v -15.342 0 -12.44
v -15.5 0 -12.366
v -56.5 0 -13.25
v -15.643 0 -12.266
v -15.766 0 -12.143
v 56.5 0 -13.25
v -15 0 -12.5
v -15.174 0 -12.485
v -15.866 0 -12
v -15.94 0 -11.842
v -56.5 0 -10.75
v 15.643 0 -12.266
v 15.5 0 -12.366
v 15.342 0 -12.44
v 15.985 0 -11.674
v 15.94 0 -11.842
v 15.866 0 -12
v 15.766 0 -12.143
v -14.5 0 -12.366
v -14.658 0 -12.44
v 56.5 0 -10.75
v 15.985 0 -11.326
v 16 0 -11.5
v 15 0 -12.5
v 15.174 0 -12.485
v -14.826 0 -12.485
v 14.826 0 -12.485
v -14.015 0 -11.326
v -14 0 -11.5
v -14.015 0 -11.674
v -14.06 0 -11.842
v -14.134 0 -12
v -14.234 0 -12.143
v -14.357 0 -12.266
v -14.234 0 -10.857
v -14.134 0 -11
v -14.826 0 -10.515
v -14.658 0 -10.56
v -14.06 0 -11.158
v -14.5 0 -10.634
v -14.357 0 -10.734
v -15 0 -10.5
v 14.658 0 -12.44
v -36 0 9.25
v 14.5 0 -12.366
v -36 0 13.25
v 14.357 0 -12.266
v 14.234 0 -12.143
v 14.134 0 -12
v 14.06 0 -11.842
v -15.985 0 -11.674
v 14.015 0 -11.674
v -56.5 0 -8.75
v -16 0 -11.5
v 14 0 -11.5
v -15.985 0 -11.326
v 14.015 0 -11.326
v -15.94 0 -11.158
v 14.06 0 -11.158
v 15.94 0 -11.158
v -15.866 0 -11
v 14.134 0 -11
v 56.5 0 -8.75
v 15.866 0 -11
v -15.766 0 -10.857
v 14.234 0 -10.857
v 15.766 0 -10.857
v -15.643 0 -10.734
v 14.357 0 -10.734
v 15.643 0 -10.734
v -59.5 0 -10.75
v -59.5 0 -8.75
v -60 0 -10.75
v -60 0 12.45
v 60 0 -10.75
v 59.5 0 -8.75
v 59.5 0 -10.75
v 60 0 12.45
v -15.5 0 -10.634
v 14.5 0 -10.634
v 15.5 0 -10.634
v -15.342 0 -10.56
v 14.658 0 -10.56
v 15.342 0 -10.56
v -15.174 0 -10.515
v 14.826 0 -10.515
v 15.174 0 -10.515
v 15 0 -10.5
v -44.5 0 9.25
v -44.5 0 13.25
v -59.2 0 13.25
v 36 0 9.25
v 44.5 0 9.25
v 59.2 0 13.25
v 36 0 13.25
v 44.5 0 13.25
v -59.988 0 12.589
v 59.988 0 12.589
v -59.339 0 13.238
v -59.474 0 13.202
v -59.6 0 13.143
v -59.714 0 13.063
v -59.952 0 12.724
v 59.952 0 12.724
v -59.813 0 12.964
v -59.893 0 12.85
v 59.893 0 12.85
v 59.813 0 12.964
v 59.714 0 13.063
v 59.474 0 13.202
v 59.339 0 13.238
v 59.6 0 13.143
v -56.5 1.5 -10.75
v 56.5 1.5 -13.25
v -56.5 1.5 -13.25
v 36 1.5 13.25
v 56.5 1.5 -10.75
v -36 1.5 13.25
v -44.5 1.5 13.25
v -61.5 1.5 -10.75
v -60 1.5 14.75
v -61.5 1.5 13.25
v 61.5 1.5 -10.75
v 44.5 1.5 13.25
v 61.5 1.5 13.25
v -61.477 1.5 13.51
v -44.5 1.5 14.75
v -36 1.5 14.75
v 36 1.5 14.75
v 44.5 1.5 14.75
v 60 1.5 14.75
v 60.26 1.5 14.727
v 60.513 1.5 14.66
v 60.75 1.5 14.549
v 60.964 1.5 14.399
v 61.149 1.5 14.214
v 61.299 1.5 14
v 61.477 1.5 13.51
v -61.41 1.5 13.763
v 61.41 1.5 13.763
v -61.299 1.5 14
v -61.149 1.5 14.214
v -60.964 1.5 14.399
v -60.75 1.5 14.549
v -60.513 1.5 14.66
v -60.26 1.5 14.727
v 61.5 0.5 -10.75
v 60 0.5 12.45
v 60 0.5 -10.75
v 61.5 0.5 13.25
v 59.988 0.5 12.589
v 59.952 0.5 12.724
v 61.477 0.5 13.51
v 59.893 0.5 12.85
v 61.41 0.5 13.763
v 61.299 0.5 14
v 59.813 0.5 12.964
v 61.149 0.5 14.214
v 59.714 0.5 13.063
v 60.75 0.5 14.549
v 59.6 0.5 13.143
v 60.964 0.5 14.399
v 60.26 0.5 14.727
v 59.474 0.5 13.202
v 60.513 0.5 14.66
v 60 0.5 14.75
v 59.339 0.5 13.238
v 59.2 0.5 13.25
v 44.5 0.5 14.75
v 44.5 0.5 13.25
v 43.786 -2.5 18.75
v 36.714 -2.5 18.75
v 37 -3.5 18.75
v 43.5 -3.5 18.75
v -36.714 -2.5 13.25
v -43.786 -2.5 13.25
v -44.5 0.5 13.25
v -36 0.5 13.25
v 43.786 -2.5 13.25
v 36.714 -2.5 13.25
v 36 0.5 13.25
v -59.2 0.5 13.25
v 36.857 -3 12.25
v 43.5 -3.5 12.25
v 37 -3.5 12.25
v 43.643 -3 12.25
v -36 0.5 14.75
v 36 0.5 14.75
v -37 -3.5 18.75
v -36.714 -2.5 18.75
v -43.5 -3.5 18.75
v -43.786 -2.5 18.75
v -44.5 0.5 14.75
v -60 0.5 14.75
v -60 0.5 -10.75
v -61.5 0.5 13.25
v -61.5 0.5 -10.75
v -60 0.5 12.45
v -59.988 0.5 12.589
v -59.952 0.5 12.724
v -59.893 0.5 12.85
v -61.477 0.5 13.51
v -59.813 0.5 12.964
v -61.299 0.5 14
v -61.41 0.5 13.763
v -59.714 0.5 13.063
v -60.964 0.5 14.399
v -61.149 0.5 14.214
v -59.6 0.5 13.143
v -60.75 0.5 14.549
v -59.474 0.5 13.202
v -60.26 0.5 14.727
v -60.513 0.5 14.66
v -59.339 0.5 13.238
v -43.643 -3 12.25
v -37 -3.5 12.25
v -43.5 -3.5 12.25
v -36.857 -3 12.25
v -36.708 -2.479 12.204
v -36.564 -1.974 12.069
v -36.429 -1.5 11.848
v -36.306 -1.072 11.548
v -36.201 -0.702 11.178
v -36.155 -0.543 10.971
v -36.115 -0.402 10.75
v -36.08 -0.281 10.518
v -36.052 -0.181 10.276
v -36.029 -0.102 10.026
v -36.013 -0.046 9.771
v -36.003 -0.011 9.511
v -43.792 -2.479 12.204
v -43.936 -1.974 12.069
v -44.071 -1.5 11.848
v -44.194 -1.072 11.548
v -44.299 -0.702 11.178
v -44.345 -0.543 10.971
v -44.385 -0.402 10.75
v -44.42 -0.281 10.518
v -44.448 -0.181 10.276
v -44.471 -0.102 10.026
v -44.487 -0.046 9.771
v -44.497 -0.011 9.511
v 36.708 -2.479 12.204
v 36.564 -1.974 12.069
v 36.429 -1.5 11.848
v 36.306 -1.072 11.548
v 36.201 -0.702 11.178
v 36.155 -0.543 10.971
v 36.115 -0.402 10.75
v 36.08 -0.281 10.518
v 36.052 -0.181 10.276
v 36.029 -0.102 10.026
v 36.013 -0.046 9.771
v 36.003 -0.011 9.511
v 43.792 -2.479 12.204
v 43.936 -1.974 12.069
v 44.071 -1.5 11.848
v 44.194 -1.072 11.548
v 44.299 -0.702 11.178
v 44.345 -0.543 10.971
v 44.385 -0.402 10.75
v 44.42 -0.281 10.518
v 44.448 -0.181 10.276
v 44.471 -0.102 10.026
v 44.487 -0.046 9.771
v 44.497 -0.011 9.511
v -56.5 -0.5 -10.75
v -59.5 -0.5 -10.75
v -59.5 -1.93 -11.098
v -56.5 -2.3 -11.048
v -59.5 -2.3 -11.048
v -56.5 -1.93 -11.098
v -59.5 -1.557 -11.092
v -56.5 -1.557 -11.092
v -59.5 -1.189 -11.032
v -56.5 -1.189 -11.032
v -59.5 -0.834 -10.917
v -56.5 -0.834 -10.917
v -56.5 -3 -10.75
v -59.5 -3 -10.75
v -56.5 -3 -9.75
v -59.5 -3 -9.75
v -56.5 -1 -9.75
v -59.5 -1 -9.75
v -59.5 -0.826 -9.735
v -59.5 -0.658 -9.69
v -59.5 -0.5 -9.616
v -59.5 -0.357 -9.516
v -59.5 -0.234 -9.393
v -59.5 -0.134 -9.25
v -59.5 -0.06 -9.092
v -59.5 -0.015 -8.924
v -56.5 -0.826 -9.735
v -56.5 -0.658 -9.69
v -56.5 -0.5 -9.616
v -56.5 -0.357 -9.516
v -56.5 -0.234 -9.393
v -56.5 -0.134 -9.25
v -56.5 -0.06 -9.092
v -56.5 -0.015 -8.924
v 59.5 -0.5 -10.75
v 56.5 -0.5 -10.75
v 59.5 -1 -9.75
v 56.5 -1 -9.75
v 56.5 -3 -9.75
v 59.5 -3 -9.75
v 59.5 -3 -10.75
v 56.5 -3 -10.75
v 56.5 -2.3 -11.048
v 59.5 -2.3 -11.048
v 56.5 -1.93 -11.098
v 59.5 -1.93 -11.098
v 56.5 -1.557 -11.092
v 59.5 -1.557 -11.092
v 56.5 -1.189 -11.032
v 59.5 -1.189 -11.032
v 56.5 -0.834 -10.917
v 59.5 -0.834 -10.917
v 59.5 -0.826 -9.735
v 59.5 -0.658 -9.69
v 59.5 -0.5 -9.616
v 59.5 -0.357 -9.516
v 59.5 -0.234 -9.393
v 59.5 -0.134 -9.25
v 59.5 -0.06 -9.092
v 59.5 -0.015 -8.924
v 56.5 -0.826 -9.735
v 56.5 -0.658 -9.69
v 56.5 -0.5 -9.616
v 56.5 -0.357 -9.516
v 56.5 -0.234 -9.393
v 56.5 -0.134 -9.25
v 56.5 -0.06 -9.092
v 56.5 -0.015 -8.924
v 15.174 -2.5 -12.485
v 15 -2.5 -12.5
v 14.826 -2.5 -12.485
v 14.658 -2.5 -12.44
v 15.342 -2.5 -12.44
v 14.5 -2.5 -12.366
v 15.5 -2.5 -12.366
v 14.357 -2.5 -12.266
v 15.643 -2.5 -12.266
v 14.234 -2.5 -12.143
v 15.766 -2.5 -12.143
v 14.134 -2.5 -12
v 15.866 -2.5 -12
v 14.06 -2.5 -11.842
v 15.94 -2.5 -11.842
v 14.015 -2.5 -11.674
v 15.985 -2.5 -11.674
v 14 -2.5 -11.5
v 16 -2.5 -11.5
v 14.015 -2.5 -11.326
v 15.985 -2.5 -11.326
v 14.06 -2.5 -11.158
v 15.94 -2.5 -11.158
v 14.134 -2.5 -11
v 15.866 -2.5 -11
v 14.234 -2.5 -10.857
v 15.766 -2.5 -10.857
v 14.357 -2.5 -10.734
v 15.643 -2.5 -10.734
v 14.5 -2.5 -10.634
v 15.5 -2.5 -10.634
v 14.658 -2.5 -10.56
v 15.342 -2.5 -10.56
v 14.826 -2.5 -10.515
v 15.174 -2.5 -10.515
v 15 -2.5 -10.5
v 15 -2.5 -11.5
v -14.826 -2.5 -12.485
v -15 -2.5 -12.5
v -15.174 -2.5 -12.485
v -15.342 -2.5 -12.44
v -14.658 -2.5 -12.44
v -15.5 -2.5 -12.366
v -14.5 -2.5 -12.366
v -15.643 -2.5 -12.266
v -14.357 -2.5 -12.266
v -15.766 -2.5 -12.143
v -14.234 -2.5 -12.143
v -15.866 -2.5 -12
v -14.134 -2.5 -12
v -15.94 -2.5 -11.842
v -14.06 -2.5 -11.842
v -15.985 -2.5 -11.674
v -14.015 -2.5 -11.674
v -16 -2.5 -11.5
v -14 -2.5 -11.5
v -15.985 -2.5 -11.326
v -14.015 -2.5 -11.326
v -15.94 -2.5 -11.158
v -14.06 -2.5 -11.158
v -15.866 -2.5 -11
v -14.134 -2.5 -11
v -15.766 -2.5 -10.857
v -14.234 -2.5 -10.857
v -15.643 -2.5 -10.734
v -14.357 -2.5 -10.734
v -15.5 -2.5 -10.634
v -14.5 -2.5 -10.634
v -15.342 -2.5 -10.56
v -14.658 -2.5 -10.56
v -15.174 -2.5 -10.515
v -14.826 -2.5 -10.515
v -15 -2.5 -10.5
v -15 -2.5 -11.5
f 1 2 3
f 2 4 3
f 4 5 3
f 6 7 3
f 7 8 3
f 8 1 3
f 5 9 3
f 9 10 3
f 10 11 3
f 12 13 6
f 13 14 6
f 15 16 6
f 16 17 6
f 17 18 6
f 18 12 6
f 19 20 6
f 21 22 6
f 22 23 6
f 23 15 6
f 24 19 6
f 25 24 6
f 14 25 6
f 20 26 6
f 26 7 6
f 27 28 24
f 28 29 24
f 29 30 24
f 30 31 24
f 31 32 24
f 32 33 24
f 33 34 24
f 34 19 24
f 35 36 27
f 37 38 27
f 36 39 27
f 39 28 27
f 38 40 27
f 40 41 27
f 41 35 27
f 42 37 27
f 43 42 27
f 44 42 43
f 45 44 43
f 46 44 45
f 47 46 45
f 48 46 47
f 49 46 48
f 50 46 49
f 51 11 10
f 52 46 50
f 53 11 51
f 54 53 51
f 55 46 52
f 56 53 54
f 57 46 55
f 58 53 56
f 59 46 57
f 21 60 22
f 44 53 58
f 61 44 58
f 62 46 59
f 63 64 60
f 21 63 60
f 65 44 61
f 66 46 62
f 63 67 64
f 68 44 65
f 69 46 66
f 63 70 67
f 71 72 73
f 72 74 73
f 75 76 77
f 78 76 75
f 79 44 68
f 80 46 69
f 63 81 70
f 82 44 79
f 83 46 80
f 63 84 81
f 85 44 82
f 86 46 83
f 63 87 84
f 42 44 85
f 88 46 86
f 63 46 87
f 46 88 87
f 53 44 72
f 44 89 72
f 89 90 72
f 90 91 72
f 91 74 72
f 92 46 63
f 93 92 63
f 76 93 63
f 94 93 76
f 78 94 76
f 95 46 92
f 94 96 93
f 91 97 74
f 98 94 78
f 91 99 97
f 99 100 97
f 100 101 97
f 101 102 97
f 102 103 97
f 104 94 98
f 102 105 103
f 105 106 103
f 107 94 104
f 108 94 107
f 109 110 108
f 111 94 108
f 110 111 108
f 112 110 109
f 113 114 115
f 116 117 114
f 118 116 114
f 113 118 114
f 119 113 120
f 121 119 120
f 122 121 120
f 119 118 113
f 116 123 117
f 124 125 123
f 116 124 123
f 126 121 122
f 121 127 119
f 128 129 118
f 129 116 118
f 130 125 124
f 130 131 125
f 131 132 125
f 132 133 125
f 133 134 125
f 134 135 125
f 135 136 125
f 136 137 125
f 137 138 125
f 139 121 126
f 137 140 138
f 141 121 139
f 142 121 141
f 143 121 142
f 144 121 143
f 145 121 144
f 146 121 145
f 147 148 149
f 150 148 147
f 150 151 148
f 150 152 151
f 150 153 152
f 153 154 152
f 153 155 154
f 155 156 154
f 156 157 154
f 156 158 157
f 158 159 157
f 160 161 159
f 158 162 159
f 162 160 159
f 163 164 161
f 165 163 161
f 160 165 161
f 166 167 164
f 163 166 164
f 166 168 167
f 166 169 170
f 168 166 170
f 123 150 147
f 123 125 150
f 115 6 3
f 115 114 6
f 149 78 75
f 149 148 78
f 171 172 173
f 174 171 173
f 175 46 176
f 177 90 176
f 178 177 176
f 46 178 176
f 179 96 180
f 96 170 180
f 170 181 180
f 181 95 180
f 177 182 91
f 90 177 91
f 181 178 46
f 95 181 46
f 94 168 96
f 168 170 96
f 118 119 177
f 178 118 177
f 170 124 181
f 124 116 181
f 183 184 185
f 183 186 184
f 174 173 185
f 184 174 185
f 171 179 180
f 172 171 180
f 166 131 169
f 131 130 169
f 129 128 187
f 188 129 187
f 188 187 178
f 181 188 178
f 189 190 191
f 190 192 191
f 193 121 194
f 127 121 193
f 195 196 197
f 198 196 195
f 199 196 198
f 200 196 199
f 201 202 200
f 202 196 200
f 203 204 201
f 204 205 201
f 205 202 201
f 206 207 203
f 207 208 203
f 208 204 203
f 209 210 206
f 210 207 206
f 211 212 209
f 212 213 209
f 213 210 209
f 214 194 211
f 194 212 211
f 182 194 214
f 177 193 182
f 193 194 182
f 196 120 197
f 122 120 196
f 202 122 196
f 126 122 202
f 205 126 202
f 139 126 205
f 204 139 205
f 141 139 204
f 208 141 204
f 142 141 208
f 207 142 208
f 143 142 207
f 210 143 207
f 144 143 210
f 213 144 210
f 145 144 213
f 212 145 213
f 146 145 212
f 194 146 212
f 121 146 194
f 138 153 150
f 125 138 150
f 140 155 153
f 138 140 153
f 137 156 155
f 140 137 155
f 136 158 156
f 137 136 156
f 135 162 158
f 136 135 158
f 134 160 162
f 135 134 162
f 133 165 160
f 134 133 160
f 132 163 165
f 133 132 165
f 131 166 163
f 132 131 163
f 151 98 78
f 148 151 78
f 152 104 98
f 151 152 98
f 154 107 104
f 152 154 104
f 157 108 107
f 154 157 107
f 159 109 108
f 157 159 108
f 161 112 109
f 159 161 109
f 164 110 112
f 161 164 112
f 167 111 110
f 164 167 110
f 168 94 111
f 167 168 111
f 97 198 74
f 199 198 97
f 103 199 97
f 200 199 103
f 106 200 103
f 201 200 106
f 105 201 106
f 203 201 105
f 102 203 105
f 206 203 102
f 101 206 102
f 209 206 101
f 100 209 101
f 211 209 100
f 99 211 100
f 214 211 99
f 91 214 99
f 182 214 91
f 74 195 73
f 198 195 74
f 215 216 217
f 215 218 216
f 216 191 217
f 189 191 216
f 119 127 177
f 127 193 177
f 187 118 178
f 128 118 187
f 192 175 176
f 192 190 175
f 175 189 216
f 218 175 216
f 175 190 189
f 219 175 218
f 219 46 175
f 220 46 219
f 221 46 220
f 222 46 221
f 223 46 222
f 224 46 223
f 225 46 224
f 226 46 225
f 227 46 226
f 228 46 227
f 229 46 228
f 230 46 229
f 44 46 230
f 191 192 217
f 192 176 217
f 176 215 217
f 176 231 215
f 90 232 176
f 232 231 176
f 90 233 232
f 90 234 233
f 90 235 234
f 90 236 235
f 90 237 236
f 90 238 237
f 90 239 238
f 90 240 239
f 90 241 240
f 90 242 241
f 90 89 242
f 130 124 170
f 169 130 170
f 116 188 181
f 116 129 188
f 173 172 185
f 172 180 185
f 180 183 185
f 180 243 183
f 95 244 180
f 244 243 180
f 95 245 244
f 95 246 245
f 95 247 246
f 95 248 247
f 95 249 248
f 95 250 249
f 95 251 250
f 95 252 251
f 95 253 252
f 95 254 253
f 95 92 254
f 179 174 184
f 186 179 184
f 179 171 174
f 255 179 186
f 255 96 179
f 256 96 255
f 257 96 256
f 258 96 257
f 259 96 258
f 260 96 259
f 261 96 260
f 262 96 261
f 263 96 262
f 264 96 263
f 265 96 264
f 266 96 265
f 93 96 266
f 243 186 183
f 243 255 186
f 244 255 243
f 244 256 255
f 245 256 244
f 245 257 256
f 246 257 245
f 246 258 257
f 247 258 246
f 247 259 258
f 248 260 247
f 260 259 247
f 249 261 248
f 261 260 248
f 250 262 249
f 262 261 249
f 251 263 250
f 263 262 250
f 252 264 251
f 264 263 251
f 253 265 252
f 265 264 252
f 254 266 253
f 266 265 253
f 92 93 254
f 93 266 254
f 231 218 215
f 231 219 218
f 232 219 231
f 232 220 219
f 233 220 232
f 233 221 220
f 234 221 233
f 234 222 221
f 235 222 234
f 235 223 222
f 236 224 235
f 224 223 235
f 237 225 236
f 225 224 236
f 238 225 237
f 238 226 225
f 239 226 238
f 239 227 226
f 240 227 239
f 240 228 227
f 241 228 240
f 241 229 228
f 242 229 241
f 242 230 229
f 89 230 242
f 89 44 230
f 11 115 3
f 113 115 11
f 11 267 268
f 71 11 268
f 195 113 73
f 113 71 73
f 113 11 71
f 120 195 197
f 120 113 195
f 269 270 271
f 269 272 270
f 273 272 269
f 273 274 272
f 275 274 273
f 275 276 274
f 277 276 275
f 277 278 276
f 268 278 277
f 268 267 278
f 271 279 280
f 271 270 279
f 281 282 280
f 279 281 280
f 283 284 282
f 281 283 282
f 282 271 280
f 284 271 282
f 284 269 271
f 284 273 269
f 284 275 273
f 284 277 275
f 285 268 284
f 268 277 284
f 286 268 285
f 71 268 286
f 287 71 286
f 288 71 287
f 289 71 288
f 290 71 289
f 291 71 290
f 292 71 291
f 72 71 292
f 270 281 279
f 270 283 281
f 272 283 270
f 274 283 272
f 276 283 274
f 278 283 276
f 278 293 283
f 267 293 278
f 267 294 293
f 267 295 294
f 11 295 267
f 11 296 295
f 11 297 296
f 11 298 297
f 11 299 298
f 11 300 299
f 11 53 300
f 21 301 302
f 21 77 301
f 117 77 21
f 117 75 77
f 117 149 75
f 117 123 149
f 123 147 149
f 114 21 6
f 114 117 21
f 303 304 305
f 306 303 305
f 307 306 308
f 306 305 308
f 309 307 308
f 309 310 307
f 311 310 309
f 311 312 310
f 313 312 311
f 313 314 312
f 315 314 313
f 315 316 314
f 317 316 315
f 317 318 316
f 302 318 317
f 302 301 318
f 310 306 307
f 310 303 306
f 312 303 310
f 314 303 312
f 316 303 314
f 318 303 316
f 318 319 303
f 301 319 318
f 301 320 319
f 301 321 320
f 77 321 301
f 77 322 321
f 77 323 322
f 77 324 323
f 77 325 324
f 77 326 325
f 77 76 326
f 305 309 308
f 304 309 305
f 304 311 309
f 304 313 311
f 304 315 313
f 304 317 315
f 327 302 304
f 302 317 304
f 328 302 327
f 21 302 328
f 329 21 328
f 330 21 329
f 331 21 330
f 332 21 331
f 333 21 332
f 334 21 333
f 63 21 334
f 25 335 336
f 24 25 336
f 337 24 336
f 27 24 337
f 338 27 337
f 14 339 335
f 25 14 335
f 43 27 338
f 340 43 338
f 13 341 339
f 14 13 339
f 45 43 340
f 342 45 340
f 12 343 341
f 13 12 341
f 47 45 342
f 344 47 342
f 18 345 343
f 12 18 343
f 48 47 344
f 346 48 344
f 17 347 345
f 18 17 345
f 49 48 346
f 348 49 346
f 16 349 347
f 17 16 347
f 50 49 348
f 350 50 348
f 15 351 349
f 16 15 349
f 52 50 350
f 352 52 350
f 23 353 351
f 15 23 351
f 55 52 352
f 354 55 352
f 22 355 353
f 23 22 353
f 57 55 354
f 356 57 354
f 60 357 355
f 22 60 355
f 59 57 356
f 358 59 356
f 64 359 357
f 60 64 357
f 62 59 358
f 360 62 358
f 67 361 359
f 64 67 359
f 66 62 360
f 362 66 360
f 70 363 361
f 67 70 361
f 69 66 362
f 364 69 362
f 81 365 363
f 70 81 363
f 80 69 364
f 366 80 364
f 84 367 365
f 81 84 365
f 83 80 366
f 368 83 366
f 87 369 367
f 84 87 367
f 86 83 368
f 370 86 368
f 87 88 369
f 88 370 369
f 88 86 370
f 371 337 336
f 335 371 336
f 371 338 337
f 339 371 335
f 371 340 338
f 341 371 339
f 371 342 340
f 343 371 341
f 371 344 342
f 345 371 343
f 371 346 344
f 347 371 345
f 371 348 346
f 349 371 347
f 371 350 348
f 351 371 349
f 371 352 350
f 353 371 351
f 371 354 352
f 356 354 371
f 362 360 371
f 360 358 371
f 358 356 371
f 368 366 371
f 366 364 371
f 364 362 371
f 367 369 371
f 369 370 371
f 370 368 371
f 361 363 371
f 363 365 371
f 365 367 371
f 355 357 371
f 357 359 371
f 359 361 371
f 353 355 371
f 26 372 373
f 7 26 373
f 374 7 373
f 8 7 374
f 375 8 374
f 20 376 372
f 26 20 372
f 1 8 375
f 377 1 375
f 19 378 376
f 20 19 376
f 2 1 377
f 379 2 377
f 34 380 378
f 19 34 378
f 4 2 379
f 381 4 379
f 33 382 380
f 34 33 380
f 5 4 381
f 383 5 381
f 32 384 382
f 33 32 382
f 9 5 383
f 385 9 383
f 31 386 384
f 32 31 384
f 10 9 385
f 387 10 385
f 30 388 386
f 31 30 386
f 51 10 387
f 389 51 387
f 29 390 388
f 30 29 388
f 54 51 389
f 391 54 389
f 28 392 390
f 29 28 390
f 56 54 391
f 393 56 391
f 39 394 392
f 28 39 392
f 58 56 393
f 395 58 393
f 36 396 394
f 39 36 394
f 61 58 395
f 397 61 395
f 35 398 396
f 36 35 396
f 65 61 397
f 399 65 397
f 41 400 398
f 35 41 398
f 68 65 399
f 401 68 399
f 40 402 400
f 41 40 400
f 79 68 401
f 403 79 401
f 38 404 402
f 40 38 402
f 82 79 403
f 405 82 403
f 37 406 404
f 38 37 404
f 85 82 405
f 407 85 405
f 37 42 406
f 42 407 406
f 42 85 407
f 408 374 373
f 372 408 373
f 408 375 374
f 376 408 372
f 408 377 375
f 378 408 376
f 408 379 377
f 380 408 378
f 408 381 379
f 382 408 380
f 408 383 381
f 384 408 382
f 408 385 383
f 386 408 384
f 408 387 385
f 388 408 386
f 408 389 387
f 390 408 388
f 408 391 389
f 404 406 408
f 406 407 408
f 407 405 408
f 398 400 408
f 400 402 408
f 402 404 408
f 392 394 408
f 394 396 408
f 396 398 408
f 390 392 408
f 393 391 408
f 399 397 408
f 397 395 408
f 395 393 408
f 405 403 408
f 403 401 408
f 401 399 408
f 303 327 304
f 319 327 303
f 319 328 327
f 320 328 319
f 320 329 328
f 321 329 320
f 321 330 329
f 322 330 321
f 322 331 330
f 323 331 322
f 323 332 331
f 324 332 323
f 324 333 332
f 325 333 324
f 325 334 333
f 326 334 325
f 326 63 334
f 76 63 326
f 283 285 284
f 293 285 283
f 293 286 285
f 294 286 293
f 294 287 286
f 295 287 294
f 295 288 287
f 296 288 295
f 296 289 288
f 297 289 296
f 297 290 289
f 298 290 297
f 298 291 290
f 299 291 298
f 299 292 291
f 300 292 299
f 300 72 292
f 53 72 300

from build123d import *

# Parameters (mm, degrees)
BOSS_EXTRUDE1_DEPTH = 1.5
CUT_EXTRUDE4_DEPTH  = 0.5
SKETCH3_W           = 8.5
SKETCH3_H           = 6.5
BOSS_EXTRUDE2_DEPTH = 5
SKETCH4_W           = 8.5
SKETCH4_H           = 5.5
CUT_EXTRUDE1_DEPTH  = 4
CUT_EXTRUDE2_DEPTH  = 33
FILLET1_R           = 3
SKETCH6_W           = 5
SKETCH6_H           = 2.5
CUT_EXTRUDE3_DEPTH  = 1.5
BOSS_EXTRUDE4_DEPTH = 3
SKETCH10_R          = 1
BOSS_EXTRUDE5_DEPTH = 2.5
FILLET2_R           = 1


with BuildPart() as part:
    # Sketch2 → Boss-Extrude1 (new body)
    with BuildSketch(Plane(origin=(0, 0, 0), x_dir=(1, 0, 0), z_dir=(0, 1, 0))):
        with BuildLine():
            Line((-61.5, 13.25), (61.5, 13.25))
            Line((61.5, 13.25), (61.5, -13.25))
            ThreePointArc((61.5, -13.25), (61.060660172, -14.310660172), (60, -14.75))
            Line((60, -14.75), (-60, -14.75))
            ThreePointArc((-60, -14.75), (-61.060660172, -14.310660172), (-61.5, -13.25))
            Line((-61.5, -13.25), (-61.5, 13.25))
        make_face()
    extrude(amount=BOSS_EXTRUDE1_DEPTH)

    # Sketch9 → Cut-Extrude4 (cut)
    with BuildSketch(Plane.XZ):
        with BuildLine():
            Line((60, -13.25), (65, -13.25))
            Line((65, -13.25), (65, 18.25))
            Line((65, 18.25), (-65, 18.25))
            Line((-65, 18.25), (-65, -13.25))
            Line((-65, -13.25), (-60, -13.25))
            Line((-60, -13.25), (-60, 12.45))
            ThreePointArc((-60, 12.45), (-59.765685425, 13.015685425), (-59.2, 13.25))
            Line((-59.2, 13.25), (59.2, 13.25))
            ThreePointArc((59.2, 13.25), (59.765685425, 13.015685425), (60, 12.45))
            Line((60, 12.45), (60, -13.25))
        make_face()
    extrude(amount=-CUT_EXTRUDE4_DEPTH, mode=Mode.SUBTRACT)

    # Sketch3 → Boss-Extrude2 (add)
    with BuildSketch(Plane(origin=(0, 1.5, 0), x_dir=(1, 0, 0), z_dir=(0, 1, 0))):
        with Locations((-40.25, -15.5)):
            Rectangle(SKETCH3_W, SKETCH3_H)
    boss_extrude2 = extrude(amount=-BOSS_EXTRUDE2_DEPTH)

    # Sketch4 → Cut-Extrude1 (cut)
    with BuildSketch(Plane(origin=(0, 1.5, 0), x_dir=(1, 0, 0), z_dir=(0, 1, 0))):
        with Locations((-40.25, -16)):
            Rectangle(SKETCH4_W, SKETCH4_H)
    cut_extrude1 = extrude(amount=-CUT_EXTRUDE1_DEPTH, mode=Mode.SUBTRACT)

    # Sketch5 → Cut-Extrude2 (cut, through all)
    with BuildSketch(Plane.XY.offset(18.75)):
        Polygon((-44.5, 0), (-43.5, -3.5), (-44.5, -3.5), align=None)
        Polygon((-36, 0), (-36, -3.5), (-37, -3.5), align=None)
    cut_extrude2 = extrude(amount=-CUT_EXTRUDE2_DEPTH, mode=Mode.SUBTRACT)

    # Mirror1: Boss-Extrude2, Cut-Extrude1, Cut-Extrude2 across plane
    add(boss_extrude2.mirror(Plane(origin=(0, 0, 0), x_dir=(0, 0, 1), z_dir=(1, 0, 0))))
    add(cut_extrude1.mirror(Plane(origin=(0, 0, 0), x_dir=(0, 0, 1), z_dir=(1, 0, 0))), mode=Mode.SUBTRACT)
    add(cut_extrude2.mirror(Plane(origin=(0, 0, 0), x_dir=(0, 0, 1), z_dir=(1, 0, 0))), mode=Mode.SUBTRACT)

    # Fillet1
    fillet1_edges = [part.edges().sort_by_distance(p)[0] for p in [
        (40.25, 0, 12.25),
        (-40.25, 0, 12.25),
    ]]
    fillet(fillet1_edges, radius=FILLET1_R)

    # Sketch6 → Cut-Extrude3 (cut)
    with BuildSketch(Plane(origin=(0, 1.5, 0), x_dir=(1, 0, 0), z_dir=(0, 1, 0))):
        with Locations((-59, 12)):
            Rectangle(SKETCH6_W, SKETCH6_H)
    cut_extrude3 = extrude(amount=-CUT_EXTRUDE3_DEPTH, mode=Mode.SUBTRACT)

    # Sketch7 → Boss-Extrude4 (add)
    with BuildSketch(Plane.ZY.offset(56.5)):
        with BuildLine():
            Line((-10.75, 0), (-10.75, -0.5))
            ThreePointArc((-10.75, -0.5), (-11.068858925, -1.37188366), (-11.047594135, -2.3))
            Line((-11.047594135, -2.3), (-10.75, -3))
            Line((-10.75, -3), (-9.75, -3))
            Line((-9.75, -3), (-9.75, 0))
            Line((-9.75, 0), (-10.75, 0))
        make_face()
    boss_extrude4 = extrude(amount=BOSS_EXTRUDE4_DEPTH)

    # Mirror2: Cut-Extrude3, Boss-Extrude4 across plane
    add(cut_extrude3.mirror(Plane(origin=(0, 0, 0), x_dir=(0, 0, 1), z_dir=(1, 0, 0))), mode=Mode.SUBTRACT)
    add(boss_extrude4.mirror(Plane(origin=(0, 0, 0), x_dir=(0, 0, 1), z_dir=(1, 0, 0))))

    # Sketch10 → Boss-Extrude5 (add)
    with BuildSketch(Plane(origin=(0, 0, 0), x_dir=(-1, 0, 0), z_dir=(0, -1, 0))):
        with Locations((-15, 11.5)):
            Circle(SKETCH10_R)
        with Locations((15, 11.5)):
            Circle(SKETCH10_R)
    extrude(amount=BOSS_EXTRUDE5_DEPTH)

    # Fillet2
    fillet2_edges = [part.edges().sort_by_distance(p)[0] for p in [
        (-58, 0, -9.75),
        (58, 0, -9.75),
    ]]
    fillet(fillet2_edges, radius=FILLET2_R)


solid = part.part
